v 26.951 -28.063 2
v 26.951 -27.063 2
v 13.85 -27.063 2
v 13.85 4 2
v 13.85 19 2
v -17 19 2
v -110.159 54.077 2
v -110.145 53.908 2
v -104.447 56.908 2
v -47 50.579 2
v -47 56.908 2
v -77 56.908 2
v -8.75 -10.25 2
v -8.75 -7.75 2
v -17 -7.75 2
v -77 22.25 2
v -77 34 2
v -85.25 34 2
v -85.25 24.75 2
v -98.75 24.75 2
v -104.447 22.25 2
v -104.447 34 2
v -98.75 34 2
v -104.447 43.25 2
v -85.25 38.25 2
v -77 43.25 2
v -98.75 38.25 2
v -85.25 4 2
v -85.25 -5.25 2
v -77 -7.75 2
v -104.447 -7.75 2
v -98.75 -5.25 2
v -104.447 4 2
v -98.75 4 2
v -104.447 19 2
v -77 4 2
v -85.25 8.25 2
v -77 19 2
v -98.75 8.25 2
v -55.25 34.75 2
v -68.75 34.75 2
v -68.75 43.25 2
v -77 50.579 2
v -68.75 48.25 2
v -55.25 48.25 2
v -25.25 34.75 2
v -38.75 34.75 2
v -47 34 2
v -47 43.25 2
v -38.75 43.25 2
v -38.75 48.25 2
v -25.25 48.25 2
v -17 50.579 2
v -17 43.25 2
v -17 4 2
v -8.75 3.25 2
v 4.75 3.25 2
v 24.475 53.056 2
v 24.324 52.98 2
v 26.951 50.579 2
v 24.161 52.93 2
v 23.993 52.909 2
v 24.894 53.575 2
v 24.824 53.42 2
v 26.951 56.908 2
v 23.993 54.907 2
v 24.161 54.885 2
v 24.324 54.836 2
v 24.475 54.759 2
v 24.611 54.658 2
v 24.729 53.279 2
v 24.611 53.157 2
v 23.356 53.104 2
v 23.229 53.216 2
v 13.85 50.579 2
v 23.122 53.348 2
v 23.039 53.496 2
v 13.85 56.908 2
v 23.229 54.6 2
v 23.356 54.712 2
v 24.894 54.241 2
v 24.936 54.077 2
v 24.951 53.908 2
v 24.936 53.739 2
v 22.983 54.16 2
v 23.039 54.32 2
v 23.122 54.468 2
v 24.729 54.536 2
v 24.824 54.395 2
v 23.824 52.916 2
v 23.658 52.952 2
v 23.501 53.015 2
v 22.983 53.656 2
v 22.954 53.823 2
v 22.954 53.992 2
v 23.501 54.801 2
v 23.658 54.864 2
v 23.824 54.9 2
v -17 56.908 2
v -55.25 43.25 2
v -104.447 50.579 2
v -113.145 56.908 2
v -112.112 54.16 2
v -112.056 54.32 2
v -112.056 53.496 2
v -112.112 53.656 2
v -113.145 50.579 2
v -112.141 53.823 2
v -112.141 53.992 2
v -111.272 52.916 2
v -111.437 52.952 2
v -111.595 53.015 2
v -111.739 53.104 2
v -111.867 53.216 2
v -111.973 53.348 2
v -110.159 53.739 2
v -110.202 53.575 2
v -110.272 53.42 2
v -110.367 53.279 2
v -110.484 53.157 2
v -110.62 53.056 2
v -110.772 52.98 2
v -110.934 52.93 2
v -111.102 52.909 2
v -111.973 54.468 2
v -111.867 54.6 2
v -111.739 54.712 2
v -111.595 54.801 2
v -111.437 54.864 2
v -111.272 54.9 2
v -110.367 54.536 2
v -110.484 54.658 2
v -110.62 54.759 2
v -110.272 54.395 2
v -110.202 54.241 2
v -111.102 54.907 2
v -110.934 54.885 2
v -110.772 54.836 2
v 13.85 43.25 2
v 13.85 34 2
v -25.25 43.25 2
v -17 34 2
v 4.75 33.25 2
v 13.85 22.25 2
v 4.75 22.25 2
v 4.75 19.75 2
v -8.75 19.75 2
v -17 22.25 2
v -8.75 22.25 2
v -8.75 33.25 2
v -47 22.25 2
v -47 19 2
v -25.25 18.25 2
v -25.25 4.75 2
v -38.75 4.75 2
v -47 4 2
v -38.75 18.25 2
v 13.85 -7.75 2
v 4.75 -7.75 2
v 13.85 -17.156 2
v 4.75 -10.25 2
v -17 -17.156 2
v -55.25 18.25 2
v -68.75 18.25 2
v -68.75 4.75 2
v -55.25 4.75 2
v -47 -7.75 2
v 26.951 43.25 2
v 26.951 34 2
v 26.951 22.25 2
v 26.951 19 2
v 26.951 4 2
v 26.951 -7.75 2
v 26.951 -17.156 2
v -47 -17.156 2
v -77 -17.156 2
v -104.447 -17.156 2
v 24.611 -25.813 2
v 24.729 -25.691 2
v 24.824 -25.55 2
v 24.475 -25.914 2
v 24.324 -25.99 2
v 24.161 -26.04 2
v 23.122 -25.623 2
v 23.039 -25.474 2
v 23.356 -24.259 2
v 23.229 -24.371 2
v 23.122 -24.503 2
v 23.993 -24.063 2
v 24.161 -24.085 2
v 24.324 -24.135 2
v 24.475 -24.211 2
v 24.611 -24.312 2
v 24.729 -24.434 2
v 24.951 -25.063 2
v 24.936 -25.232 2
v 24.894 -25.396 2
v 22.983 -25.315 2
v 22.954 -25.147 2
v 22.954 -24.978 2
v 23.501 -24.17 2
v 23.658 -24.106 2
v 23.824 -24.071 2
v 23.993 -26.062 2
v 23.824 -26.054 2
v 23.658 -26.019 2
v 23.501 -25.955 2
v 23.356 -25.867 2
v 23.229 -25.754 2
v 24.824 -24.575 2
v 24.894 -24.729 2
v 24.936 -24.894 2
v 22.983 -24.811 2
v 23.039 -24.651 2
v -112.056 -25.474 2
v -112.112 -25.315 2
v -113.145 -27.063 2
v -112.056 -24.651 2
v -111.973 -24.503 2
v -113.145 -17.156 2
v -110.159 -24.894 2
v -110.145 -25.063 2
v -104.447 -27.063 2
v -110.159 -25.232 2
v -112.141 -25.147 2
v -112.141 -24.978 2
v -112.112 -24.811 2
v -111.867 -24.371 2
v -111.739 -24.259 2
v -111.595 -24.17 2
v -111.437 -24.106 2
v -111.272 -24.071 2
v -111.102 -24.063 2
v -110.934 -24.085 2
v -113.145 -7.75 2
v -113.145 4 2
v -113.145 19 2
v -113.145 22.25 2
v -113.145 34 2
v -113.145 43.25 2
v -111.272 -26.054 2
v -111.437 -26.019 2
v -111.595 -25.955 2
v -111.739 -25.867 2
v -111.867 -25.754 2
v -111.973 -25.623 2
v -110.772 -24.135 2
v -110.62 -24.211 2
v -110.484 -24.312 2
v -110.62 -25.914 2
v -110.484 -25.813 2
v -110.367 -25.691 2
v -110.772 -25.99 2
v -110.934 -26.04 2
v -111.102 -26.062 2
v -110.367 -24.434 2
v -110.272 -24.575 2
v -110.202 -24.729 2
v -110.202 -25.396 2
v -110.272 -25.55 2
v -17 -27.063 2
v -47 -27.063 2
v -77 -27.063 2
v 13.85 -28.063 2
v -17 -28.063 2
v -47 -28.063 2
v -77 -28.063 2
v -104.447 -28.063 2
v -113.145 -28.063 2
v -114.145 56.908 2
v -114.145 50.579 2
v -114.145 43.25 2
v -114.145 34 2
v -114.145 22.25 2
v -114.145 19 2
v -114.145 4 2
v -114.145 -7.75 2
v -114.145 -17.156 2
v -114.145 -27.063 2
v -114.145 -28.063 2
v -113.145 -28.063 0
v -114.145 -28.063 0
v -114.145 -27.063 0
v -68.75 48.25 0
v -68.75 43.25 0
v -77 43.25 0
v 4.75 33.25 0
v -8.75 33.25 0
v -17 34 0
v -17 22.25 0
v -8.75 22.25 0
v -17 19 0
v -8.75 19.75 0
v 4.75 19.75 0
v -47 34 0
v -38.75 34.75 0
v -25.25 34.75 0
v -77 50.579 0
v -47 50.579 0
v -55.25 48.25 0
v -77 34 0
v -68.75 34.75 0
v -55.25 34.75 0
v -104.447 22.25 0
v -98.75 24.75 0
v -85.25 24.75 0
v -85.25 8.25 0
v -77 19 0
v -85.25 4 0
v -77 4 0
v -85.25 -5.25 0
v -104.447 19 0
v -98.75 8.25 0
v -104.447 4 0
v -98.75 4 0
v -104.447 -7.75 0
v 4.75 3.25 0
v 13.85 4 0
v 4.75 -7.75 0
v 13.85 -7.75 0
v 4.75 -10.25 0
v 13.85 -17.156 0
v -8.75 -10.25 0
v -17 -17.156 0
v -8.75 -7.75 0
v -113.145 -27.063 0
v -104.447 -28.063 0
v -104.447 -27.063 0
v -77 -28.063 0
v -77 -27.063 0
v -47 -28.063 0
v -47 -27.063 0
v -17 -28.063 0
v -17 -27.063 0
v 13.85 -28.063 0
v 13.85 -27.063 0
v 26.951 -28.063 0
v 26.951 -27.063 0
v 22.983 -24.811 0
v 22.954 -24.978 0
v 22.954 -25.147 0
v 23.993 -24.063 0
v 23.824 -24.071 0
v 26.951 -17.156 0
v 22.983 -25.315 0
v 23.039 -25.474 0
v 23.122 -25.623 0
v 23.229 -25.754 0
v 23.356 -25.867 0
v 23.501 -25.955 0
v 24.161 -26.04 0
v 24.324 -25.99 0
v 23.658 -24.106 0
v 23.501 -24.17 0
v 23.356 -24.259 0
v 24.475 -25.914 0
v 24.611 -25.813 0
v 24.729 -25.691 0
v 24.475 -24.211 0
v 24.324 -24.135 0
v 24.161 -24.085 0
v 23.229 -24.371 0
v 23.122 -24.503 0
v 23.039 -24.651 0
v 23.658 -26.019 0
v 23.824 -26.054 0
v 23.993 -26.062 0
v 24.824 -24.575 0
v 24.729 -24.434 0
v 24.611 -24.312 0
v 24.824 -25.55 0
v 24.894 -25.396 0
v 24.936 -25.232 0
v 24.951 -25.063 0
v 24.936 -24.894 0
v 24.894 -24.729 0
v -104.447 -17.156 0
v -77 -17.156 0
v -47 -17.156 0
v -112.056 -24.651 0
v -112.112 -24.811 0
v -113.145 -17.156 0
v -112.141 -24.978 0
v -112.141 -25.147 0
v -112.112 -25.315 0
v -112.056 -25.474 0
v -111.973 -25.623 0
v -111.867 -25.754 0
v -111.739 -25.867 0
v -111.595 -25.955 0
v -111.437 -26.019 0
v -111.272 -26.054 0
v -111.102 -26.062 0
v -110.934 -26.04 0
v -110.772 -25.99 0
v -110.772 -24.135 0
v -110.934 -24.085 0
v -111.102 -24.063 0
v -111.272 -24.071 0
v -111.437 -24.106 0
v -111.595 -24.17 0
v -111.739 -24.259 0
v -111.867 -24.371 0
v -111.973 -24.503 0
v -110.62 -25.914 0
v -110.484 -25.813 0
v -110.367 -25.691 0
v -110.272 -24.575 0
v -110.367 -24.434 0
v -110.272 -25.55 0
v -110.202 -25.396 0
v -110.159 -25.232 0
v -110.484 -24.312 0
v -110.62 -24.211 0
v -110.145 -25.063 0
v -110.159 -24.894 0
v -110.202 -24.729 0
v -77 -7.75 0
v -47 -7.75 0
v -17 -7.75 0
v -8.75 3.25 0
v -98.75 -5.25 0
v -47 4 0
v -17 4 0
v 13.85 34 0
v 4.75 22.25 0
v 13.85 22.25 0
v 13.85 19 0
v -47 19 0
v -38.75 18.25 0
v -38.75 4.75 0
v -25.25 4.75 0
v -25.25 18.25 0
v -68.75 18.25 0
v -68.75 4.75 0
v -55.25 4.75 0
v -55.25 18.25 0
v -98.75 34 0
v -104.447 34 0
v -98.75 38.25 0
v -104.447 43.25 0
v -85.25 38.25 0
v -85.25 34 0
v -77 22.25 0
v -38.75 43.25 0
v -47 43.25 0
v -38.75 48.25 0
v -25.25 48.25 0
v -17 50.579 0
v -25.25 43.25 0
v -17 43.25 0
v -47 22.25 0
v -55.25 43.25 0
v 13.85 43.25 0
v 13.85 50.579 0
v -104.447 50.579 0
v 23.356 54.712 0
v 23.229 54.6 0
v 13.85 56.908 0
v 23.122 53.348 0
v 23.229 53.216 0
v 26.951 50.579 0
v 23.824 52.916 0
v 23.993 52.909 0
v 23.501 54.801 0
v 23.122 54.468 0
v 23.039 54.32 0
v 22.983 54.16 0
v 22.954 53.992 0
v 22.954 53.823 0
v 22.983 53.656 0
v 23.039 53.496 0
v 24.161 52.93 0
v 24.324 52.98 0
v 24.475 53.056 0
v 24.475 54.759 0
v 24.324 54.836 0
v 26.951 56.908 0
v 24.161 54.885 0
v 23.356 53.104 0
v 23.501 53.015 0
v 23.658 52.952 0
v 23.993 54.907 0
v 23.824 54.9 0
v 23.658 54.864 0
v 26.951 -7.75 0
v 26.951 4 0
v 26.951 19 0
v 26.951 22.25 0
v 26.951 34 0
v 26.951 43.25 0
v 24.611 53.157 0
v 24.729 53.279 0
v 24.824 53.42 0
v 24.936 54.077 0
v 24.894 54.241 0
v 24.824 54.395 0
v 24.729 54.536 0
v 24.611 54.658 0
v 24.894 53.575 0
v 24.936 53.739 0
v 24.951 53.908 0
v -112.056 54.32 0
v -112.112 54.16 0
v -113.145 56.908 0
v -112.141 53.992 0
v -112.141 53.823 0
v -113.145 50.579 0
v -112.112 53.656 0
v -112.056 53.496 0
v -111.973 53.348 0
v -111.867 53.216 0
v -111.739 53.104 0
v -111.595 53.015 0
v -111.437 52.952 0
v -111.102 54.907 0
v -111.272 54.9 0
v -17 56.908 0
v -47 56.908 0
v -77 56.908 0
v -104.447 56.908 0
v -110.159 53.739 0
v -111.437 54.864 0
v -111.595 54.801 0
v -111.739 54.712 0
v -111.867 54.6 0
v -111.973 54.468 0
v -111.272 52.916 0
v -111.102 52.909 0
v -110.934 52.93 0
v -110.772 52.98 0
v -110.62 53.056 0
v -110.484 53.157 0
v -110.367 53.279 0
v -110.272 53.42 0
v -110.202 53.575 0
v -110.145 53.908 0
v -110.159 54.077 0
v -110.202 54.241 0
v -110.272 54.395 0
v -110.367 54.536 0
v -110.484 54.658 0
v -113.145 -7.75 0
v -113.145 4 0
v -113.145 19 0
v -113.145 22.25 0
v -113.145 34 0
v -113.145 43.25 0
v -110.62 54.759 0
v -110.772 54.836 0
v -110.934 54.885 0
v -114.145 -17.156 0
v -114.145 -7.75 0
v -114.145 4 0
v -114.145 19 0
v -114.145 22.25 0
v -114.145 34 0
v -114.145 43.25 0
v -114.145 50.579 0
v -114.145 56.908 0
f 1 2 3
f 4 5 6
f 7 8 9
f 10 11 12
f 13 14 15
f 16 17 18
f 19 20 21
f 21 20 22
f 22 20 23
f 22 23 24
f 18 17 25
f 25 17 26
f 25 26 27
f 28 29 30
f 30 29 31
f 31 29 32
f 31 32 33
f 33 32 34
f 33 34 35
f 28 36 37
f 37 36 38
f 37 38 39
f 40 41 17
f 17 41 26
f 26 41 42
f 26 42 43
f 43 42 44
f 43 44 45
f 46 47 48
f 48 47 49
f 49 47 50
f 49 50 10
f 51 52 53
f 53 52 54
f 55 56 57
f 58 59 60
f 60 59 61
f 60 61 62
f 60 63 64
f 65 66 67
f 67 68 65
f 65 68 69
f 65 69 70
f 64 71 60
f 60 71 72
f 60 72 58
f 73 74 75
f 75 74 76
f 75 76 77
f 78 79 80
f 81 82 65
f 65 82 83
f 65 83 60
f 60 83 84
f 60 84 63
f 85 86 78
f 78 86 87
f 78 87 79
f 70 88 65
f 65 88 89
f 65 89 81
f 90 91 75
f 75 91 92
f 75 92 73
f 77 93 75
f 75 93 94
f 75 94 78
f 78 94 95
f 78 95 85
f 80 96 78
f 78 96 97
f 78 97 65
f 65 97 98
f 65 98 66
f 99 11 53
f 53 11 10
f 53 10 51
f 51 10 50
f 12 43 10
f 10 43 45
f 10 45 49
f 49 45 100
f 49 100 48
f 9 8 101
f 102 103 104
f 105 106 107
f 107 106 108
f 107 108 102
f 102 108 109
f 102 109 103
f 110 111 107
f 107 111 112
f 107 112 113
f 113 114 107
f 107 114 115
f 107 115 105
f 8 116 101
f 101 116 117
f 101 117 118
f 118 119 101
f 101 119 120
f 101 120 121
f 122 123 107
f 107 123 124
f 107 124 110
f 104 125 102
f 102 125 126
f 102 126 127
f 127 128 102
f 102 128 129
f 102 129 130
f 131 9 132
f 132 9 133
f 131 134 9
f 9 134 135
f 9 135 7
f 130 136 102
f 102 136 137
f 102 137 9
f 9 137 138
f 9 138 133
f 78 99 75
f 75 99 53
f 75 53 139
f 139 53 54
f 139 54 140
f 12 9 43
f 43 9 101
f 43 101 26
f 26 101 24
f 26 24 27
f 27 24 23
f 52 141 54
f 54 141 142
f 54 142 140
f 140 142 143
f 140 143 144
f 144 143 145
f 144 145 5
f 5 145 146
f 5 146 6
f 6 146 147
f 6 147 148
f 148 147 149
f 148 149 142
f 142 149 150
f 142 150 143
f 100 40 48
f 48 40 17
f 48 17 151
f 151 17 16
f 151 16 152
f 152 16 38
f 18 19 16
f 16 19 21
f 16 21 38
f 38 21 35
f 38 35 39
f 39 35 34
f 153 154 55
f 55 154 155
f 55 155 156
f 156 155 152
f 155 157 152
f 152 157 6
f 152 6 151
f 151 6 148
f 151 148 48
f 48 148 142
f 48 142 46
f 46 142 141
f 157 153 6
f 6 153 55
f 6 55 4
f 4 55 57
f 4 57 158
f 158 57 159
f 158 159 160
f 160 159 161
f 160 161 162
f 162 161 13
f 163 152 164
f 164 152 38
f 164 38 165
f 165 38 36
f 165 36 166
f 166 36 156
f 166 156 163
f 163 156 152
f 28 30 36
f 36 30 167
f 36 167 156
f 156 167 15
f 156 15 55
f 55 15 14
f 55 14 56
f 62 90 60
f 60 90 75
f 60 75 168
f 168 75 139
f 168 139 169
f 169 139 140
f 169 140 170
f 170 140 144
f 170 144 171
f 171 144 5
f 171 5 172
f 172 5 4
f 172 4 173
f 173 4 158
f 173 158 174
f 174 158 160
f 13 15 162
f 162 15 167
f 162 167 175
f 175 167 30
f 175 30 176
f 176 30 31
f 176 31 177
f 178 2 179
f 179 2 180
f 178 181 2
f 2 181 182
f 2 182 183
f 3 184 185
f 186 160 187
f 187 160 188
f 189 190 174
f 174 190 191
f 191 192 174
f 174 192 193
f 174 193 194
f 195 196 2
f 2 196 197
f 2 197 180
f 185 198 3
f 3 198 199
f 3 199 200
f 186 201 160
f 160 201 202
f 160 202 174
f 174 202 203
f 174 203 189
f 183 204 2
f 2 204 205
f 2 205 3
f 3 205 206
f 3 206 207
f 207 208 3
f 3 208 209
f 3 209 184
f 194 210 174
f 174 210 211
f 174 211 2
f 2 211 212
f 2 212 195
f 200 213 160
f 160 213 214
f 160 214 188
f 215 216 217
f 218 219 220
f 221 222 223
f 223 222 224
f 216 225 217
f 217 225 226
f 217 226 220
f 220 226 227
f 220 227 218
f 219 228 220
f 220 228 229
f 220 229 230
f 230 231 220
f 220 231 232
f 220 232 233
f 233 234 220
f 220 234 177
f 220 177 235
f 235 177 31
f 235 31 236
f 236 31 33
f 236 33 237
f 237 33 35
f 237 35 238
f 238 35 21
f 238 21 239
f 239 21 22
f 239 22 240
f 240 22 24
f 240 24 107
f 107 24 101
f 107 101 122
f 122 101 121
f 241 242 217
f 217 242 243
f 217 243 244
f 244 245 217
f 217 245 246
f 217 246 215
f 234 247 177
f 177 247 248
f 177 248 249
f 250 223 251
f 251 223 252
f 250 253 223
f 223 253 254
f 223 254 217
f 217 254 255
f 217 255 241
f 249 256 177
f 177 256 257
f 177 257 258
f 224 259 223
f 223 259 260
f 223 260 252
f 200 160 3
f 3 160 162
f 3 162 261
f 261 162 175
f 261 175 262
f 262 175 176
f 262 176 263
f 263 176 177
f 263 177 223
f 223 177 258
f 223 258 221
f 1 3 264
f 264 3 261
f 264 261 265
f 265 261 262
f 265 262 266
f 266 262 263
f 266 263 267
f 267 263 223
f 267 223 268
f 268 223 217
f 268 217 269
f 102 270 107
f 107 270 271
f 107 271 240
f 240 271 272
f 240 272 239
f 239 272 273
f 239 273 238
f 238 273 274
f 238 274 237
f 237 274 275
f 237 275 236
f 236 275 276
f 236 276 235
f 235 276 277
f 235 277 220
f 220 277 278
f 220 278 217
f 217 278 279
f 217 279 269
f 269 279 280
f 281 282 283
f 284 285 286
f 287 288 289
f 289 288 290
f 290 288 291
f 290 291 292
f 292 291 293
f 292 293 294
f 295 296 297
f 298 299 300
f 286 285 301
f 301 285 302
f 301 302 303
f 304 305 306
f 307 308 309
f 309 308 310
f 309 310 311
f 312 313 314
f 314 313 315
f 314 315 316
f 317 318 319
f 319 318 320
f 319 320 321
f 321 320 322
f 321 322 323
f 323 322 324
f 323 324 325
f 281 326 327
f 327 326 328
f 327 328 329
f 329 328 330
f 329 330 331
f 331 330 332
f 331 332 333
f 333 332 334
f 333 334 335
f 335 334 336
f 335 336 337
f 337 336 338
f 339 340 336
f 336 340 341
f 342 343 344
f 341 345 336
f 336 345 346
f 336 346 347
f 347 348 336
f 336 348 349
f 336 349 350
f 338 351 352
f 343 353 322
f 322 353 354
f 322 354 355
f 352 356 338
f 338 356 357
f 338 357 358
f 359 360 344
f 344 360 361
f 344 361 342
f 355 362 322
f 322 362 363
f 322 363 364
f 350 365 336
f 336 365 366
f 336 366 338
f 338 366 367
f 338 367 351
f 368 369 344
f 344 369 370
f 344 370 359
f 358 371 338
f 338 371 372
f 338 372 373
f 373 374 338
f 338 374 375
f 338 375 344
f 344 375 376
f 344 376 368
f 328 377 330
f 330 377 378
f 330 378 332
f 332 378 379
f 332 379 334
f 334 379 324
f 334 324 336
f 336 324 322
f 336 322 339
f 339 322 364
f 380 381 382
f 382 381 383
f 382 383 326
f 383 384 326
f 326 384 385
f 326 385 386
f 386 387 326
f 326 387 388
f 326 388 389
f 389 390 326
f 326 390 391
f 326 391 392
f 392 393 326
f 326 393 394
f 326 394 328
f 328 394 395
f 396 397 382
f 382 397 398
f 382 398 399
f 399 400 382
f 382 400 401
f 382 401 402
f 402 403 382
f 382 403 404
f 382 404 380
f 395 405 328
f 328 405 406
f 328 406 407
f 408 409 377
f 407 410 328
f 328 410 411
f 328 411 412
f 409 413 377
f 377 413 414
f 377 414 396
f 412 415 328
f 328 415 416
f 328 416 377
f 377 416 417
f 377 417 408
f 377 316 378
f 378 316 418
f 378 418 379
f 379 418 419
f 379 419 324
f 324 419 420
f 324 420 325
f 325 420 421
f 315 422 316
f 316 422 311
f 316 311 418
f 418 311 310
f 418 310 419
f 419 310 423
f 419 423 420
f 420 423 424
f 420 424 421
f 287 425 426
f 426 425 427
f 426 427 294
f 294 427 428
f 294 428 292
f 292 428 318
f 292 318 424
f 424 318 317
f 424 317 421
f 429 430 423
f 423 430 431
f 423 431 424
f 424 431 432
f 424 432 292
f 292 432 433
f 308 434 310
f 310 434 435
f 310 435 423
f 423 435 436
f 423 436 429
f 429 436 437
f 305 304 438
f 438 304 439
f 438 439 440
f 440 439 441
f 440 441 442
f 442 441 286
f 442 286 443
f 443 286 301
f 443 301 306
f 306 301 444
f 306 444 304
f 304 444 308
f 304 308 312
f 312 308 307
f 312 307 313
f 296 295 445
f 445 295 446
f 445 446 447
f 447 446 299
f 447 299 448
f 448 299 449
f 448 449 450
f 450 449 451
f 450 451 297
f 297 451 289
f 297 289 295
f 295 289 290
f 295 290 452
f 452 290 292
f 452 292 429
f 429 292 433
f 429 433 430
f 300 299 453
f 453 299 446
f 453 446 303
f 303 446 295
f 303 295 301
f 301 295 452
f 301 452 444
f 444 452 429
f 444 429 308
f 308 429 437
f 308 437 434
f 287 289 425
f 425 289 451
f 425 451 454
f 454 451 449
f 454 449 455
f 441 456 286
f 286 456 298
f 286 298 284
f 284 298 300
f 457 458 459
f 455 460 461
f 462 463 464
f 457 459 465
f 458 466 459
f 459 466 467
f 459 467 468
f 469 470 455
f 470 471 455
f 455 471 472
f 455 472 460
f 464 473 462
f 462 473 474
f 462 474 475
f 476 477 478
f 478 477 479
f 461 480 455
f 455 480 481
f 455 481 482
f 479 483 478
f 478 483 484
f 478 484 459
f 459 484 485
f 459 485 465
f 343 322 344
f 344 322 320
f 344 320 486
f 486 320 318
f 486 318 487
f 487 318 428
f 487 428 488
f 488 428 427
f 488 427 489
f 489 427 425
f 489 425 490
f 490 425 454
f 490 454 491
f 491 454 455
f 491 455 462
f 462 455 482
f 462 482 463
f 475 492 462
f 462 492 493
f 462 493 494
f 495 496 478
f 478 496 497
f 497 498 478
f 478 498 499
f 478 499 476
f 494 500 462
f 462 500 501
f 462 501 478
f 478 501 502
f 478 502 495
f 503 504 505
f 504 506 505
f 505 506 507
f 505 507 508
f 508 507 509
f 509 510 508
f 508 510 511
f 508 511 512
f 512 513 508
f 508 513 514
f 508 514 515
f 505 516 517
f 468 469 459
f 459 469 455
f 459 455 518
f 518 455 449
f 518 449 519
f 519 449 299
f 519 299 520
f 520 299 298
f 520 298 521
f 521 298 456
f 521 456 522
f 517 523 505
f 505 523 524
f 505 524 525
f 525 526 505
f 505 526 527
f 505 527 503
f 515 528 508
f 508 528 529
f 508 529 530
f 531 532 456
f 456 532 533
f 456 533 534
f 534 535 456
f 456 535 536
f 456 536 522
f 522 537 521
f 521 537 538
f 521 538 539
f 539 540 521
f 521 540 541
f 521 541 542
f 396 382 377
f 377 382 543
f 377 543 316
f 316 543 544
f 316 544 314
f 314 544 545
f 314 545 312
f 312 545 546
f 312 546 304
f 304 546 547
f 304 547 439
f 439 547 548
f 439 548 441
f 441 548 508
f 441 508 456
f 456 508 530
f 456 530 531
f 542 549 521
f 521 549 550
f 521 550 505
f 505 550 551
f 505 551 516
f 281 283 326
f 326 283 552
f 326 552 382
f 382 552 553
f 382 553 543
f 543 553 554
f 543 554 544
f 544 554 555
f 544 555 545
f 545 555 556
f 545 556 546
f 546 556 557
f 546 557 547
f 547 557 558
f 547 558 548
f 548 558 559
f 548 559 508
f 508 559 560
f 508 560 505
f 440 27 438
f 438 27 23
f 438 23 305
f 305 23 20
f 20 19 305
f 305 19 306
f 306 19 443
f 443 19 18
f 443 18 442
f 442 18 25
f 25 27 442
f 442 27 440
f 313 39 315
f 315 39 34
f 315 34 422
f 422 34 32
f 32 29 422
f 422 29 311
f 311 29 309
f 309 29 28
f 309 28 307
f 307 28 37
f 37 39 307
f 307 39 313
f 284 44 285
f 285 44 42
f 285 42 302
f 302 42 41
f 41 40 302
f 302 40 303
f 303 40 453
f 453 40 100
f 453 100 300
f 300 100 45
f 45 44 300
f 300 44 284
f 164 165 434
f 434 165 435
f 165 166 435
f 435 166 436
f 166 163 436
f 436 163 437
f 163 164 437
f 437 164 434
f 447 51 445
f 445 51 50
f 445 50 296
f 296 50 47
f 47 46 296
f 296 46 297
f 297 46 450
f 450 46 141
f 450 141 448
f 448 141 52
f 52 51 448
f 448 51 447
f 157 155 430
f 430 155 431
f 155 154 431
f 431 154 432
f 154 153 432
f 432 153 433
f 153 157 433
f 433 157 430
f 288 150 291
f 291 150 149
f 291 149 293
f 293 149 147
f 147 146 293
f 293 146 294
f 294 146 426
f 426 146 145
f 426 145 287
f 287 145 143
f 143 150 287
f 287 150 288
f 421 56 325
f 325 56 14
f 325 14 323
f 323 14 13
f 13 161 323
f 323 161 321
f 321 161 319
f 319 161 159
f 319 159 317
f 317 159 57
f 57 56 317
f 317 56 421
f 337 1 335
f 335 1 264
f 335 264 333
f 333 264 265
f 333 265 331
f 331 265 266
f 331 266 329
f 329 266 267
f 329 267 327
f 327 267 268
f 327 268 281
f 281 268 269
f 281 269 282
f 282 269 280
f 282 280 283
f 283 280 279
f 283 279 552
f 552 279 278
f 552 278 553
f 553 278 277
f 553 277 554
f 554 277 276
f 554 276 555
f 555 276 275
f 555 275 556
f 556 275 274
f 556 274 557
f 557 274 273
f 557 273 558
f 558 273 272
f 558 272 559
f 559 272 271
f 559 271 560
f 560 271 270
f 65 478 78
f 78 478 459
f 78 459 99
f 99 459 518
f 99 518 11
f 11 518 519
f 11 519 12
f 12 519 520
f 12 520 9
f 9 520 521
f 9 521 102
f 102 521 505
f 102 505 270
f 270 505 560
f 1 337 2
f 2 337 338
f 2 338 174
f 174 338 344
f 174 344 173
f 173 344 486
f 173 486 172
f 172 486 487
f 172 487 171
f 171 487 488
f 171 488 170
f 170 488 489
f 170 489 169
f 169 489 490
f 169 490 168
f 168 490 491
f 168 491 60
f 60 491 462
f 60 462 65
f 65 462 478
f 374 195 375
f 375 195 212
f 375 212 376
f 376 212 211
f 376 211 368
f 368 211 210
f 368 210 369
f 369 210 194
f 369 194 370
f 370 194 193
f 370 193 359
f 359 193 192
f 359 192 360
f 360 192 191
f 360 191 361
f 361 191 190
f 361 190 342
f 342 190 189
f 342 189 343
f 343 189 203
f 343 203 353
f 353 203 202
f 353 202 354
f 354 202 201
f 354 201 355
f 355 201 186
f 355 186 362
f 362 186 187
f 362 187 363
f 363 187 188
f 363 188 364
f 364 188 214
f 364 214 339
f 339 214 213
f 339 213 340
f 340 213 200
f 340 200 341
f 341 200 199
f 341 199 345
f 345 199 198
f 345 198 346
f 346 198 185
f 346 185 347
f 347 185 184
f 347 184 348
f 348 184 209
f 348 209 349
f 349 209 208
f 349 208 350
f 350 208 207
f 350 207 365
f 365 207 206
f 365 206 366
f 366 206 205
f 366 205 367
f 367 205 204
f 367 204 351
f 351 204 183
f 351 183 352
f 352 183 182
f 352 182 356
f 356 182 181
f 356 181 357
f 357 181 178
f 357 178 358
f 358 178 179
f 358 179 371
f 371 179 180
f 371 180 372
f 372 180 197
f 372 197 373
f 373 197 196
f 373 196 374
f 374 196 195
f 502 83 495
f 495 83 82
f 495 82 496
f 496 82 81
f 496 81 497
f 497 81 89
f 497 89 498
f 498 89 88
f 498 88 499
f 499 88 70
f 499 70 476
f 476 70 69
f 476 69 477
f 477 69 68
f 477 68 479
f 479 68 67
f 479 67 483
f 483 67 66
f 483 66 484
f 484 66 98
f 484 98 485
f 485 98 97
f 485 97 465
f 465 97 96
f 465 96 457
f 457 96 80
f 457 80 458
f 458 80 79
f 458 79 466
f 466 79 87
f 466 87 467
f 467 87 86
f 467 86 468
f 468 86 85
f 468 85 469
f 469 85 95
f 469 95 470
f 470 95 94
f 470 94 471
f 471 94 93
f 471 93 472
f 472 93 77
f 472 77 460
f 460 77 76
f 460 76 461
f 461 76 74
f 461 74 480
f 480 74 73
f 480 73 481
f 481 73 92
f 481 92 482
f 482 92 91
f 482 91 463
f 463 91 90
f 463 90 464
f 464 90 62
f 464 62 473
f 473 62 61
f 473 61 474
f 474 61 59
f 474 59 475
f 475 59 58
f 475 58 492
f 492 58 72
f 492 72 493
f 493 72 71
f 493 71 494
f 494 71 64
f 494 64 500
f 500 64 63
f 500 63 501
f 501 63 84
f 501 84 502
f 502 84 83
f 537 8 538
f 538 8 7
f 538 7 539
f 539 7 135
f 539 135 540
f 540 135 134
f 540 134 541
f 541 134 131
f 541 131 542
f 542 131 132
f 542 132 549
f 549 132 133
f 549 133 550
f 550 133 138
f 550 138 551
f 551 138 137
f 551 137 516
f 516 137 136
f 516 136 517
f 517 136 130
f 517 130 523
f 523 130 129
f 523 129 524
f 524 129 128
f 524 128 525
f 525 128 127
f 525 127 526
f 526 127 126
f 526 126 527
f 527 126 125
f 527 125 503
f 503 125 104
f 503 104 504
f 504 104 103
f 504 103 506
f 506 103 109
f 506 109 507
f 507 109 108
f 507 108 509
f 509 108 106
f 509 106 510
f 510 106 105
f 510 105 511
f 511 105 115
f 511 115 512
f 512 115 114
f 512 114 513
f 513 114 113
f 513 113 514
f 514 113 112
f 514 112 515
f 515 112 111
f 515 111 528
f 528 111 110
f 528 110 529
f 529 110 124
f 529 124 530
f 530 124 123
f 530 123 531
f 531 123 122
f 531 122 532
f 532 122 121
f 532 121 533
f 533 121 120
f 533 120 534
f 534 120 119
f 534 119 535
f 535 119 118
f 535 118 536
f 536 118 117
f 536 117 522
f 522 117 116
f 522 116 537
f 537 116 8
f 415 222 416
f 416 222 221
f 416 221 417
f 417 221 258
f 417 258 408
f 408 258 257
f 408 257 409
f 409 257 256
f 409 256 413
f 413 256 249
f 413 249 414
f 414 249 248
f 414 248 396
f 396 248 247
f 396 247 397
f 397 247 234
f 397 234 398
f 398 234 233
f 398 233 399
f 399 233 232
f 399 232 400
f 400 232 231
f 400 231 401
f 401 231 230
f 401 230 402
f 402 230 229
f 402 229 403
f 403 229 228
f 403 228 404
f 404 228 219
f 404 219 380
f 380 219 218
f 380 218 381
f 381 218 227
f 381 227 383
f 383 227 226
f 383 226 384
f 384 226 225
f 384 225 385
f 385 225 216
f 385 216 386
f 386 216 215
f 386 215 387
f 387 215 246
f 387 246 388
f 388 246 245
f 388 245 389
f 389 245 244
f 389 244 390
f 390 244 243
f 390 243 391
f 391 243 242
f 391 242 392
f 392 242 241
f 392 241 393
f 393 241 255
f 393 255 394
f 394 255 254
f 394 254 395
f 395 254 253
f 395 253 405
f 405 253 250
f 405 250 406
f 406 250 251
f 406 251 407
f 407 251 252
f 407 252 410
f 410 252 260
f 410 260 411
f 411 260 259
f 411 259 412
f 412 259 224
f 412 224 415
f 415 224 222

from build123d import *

# Parameters (mm, degrees)
SKETCH1_W           = 250
SKETCH1_H           = 123
SKETCH1_W_2         = 13.5
SKETCH1_H_2         = 13.5
BOSS_EXTRUDE1_DEPTH = 2
SKETCH3_W           = 250
SKETCH3_H           = 123
SKETCH3_W_2         = 141.095287024
SKETCH3_H_2         = 84.970220395
CUT_EXTRUDE2_DEPTH  = 62
SKETCH4_R           = 1
CUT_EXTRUDE3_DEPTH  = 62


with BuildPart() as part:
    # Sketch1 → Boss-Extrude1 (new body)
    with BuildSketch(Plane(origin=(0, 0, 0), x_dir=(-1, 0, 0), z_dir=(0, 0, 1))):
        Rectangle(SKETCH1_W, SKETCH1_H)
        with Locations((92, -31.5)):
            Rectangle(SKETCH1_W_2, SKETCH1_H_2, mode=Mode.SUBTRACT)
        with Locations((92, -1.5)):
            Rectangle(SKETCH1_W_2, SKETCH1_H_2, mode=Mode.SUBTRACT)
        with Locations((62, -41.5)):
            Rectangle(SKETCH1_W_2, SKETCH1_H_2, mode=Mode.SUBTRACT)
        with Locations((62, -11.5)):
            Rectangle(SKETCH1_W_2, SKETCH1_H_2, mode=Mode.SUBTRACT)
        with Locations((32, -41.5)):
            Rectangle(SKETCH1_W_2, SKETCH1_H_2, mode=Mode.SUBTRACT)
        with Locations((32, -11.5)):
            Rectangle(SKETCH1_W_2, SKETCH1_H_2, mode=Mode.SUBTRACT)
        with Locations((2, -26.5)):
            Rectangle(SKETCH1_W_2, SKETCH1_H_2, mode=Mode.SUBTRACT)
        with Locations((2, 3.5)):
            Rectangle(SKETCH1_W_2, SKETCH1_H_2, mode=Mode.SUBTRACT)
    extrude(amount=BOSS_EXTRUDE1_DEPTH)

    # Sketch3 → Cut-Extrude2 (cut)
    with BuildSketch(Plane.XY.offset(2)):
        Rectangle(SKETCH3_W, SKETCH3_H)
        with Locations((-43.596913119, 14.422576882)):
            Rectangle(SKETCH3_W_2, SKETCH3_H_2, mode=Mode.SUBTRACT)
    extrude(amount=-CUT_EXTRUDE2_DEPTH, mode=Mode.SUBTRACT)

    # Sketch4 → Cut-Extrude3 (cut)
    with BuildSketch(Plane.XY.offset(2)):
        with Locations((23.950730393, -25.062533315)):
            Circle(SKETCH4_R)
        with Locations((23.950730393, 53.90768708)):
            Circle(SKETCH4_R)
        with Locations((-111.144556631, 53.90768708)):
            Circle(SKETCH4_R)
        with Locations((-111.144556631, -25.062533315)):
            Circle(SKETCH4_R)
    extrude(amount=-CUT_EXTRUDE3_DEPTH, mode=Mode.SUBTRACT)


solid = part.part
